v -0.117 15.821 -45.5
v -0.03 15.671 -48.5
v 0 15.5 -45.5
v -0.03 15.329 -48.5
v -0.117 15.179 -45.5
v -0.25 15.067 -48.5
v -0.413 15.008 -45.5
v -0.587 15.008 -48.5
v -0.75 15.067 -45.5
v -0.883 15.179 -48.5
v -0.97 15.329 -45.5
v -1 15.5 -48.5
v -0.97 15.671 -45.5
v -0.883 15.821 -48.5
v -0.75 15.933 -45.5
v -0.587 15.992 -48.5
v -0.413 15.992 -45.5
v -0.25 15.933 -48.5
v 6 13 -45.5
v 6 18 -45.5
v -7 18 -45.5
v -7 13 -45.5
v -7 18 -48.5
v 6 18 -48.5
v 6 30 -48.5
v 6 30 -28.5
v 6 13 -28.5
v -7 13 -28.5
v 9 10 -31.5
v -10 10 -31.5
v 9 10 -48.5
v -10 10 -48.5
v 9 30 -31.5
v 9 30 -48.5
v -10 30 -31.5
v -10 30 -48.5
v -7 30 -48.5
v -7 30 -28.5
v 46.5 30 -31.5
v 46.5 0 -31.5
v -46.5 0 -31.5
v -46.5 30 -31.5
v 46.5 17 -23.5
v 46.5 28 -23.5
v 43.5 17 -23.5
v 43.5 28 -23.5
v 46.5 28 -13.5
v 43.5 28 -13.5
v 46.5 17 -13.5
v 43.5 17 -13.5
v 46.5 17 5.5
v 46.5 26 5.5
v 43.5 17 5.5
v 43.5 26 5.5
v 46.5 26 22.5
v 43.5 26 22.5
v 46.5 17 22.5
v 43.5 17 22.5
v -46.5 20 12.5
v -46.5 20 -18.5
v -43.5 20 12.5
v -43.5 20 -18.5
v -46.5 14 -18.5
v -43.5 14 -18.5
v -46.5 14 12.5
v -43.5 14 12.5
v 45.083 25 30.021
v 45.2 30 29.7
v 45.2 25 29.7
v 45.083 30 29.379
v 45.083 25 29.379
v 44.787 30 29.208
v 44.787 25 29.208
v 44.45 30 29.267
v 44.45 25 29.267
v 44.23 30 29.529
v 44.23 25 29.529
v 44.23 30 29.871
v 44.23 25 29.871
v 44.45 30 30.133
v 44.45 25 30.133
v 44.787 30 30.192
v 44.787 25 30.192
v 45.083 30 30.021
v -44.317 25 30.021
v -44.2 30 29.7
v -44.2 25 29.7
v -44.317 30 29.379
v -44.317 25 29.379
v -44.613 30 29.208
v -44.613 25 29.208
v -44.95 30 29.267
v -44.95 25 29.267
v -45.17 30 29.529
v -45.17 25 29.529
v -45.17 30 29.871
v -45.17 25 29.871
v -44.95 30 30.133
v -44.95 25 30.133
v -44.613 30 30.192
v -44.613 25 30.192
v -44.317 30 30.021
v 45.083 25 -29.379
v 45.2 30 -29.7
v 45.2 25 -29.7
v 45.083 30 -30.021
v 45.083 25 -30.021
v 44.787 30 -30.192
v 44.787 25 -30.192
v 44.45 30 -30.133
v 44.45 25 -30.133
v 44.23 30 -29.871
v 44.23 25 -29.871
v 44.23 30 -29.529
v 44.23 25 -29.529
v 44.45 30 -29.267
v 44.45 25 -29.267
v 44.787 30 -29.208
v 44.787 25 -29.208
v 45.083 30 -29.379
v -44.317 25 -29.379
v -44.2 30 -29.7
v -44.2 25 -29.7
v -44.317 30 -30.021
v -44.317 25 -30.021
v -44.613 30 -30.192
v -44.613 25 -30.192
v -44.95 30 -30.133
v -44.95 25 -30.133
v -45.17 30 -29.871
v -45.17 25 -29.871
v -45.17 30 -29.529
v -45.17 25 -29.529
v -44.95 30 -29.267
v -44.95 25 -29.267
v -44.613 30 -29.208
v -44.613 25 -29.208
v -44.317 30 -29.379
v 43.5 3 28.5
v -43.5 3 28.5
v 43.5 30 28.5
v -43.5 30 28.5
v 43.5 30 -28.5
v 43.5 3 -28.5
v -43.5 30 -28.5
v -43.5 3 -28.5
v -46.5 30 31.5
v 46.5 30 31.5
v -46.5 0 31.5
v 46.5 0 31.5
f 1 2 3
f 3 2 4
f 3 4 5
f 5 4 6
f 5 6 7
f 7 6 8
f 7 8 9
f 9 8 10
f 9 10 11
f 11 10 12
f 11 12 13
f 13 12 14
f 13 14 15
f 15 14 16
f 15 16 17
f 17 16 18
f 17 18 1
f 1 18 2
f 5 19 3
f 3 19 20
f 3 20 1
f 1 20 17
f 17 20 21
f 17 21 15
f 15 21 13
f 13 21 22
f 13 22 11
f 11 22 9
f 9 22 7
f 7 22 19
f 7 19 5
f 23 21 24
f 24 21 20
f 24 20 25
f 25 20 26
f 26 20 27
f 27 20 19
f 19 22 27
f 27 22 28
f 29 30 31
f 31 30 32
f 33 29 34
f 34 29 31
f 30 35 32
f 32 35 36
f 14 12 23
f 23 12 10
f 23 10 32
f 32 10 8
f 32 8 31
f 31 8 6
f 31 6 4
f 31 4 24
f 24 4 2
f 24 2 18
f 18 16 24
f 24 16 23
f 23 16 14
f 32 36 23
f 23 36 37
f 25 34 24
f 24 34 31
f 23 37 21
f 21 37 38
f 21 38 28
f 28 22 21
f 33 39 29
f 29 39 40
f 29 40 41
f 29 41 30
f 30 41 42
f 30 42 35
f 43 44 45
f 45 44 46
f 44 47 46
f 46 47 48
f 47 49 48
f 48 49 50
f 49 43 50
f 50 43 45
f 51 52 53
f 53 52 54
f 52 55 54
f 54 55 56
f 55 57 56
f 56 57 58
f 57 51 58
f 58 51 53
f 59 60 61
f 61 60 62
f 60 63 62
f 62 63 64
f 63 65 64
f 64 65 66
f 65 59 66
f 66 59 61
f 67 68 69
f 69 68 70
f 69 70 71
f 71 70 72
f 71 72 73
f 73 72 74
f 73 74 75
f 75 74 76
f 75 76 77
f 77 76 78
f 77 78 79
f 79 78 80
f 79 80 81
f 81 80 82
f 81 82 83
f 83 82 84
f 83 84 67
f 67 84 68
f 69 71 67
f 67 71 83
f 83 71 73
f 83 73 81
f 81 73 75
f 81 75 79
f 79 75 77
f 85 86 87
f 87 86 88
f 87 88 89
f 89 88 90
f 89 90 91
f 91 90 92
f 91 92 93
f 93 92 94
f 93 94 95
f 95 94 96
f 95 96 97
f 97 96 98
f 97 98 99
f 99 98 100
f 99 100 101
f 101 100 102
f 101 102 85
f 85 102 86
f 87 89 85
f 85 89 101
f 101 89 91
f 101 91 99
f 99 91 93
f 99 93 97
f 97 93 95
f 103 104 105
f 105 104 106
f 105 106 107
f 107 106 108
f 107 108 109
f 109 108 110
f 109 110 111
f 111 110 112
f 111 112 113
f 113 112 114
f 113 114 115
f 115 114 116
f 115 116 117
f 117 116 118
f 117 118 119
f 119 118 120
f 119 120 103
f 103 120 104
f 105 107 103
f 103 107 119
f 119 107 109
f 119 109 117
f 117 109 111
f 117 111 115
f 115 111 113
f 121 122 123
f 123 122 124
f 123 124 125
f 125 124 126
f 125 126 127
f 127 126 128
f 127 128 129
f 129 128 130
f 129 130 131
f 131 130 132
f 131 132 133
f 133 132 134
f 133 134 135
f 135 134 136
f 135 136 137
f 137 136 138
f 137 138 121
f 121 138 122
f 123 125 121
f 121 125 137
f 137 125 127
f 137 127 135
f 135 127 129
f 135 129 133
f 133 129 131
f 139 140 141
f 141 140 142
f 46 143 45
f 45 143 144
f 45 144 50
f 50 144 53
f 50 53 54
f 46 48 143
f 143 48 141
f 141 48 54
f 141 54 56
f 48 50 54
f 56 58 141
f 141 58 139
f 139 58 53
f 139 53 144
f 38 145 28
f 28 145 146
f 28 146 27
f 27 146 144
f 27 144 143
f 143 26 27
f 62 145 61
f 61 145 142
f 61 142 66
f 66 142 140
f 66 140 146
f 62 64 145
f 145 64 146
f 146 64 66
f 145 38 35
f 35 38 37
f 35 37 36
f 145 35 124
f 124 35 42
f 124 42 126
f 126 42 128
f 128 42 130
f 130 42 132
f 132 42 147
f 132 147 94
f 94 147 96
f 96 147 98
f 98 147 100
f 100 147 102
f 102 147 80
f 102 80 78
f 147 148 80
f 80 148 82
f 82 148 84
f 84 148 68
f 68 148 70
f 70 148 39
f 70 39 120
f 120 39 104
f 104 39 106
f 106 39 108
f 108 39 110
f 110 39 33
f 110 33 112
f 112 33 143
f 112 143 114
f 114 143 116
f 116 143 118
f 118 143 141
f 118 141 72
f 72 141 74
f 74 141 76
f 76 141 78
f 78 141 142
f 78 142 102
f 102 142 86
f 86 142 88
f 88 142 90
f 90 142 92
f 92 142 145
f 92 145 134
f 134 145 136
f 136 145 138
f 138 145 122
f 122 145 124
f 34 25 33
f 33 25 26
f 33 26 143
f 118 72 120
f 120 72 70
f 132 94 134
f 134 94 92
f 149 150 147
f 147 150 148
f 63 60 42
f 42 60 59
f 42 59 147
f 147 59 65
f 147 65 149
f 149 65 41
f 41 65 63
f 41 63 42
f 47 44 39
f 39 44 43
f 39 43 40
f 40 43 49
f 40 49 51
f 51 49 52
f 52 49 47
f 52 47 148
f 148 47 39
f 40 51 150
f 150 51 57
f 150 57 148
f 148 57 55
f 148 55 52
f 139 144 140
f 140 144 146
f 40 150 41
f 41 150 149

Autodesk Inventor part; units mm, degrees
ref_plane "YZ Plane" through (0, 0, 0) normal (1, 0, 0) x (0, 1, 0)
ref_plane "XZ Plane" through (0, 0, 0) normal (0, 1, 0) x (-1, 0, 0)
ref_plane "XY Plane" through (0, 0, 0) normal (0, 0, 1) x (1, 0, 0)
sketch "Sketch1" plane through (0, 0, 0) normal (0, 1, 0) x (-1, 0, 0)
  line L0 (46.5, 31.5) -> (-46.5, 31.5)
  line L1 (-46.5, 31.5) -> (-46.5, -31.5)
  line L2 (-46.5, -31.5) -> (46.5, -31.5)
  line L3 (46.5, -31.5) -> (46.5, 31.5)
  line L4 (46.5, 31.5) -> (-46.5, -31.5) construction
  line L5 (-46.5, 31.5) -> (46.5, -31.5) construction
  point P0 (0, 0)
  dimension "d0" = 63
  dimension "d1" = 93
extrude "Extrusion1" add sketch "Sketch1" along normal blind 3
sketch "Sketch2" plane through (0, 3, 0) normal (0, 1, 0) x (1, 0, 0)
  line L0 (-43.5, -28.5) -> (43.5, -28.5)
  line L1 (43.5, -28.5) -> (43.5, 28.5)
  line L2 (43.5, 28.5) -> (-43.5, 28.5)
  line L3 (-43.5, 28.5) -> (-43.5, -28.5)
  line L4 (-43.5, -28.5) -> (43.5, 28.5) construction
  line L5 (43.5, -28.5) -> (-43.5, 28.5) construction
  line L6 (46.5, -31.5) -> (46.5, 31.5) projected
  line L7 (-46.5, -31.5) -> (46.5, -31.5)
  line L8 (46.5, -31.5) -> (46.5, 31.5)
  line L9 (46.5, 31.5) -> (-46.5, 31.5)
  line L10 (-46.5, 31.5) -> (-46.5, -31.5)
  line L11 (-46.5, -31.5) -> (46.5, 31.5) construction
  line L12 (46.5, -31.5) -> (-46.5, 31.5) construction
  point P0 (0, 0)
  point P1 (46.5, -31.5)
  dimension "d4" = 57
  dimension "d5" = 87
extrude "Extrusion2" add sketch "Sketch2" along normal blind 27
sketch "Sketch3" plane through (0, 30, 0) normal (0, 1, 0) x (1, 0, 0)
  circle A0 centre (-44.7, 29.7) radius 0.5
  line L0 (46.5, 31.5) -> (-46.5, 31.5) projected
  line L1 (-46.5, 31.5) -> (-46.5, -31.5) projected
  circle A1 centre (-44.7, -29.7) radius 0.5
  line L2 (-46.5, -31.5) -> (46.5, -31.5) projected
  circle A2 centre (44.7, -29.7) radius 0.5
  line L3 (46.5, -31.5) -> (46.5, 31.5) projected
  circle A3 centre (44.7, 29.7) radius 0.5
  point P0 (0, 0)
  dimension "d8" = 1.8
  dimension "d9" = 1.8
  dimension "d10" = 1
  dimension "d11" = 1.8
  dimension "d12" = 1.8
  dimension "d13" = 1
  dimension "d14" = 1.8
  dimension "d15" = 1.8
  dimension "d16" = 1
  dimension "d17" = 1.8
  dimension "d18" = 1.8
  dimension "d19" = 1
extrude "Extrusion3" cut sketch "Sketch3" against normal blind 5 contours A0 | A1 | A2 | A3
sketch "Sketch5" plane through (-46.5, 0, -31.5) normal (-1, 0, 0) x (0, 0, 1)
  line L0 (13, 14) -> (44, 14)
  line L1 (44, 14) -> (44, 20)
  line L2 (44, 20) -> (13, 20)
  line L3 (13, 20) -> (13, 14)
  line L4 (0, 0) -> (63, 0) projected
  line L5 (0, 0) -> (0, 30) projected
  point P0 (31.5, 0)
  dimension "d23" = 14
  dimension "d24" = 6
  dimension "d25" = 31
  dimension "d26" = 13
extrude "Extrusion4" cut sketch "Sketch5" against normal blind 3
sketch "Sketch6" plane through (46.5, 0, 31.5) normal (1, 0, 0) x (0, 0, -1)
  line L0 (45, 28) -> (55, 28)
  line L1 (55, 28) -> (55, 17)
  line L2 (55, 17) -> (45, 17)
  line L3 (45, 17) -> (45, 28)
  line L4 (0, 0) -> (63, 0) projected
  line L5 (63, 0) -> (63, 30) projected
  line L6 (9, 26) -> (26, 26)
  line L7 (26, 26) -> (26, 17)
  line L8 (26, 17) -> (9, 17)
  line L9 (9, 17) -> (9, 26)
  line L10 (0, 0) -> (0, 30) projected
  point P0 (31.5, 0)
  dimension "d30" = 17
  dimension "d31" = 11
  dimension "d32" = 10
  dimension "d33" = 8
  dimension "d34" = 9
  dimension "d35" = 17
  dimension "d36" = 17
  dimension "d37" = 9
extrude "Extrusion5" cut sketch "Sketch6" against normal blind 3
sketch "Sketch7" plane through (46.5, 0, -31.5) normal (0, 0, -1) x (-1, 0, 0)
  line L0 (40.5, 41) -> (53.5, 41)
  line L1 (53.5, 41) -> (53.5, 13)
  line L2 (53.5, 13) -> (40.5, 13)
  line L3 (40.5, 13) -> (40.5, 41)
  line L4 (0, 0) -> (93, 0) projected
  line L5 (93, 0) -> (93, 30) projected
  point P0 (46.5, 0)
  dimension "d40" = 13
  dimension "d41" = 28
  dimension "d42" = 13
  dimension "d43" = 39.5
extrude "Extrusion6" cut sketch "Sketch7" against normal blind 3
sketch "Sketch8" plane through (46.5, 0, -31.5) normal (0, 0, -1) x (-1, 0, 0)
  line L0 (40.5, 30) -> (3, 30) projected
  line L1 (37.5, 30) -> (56.5, 30)
  line L2 (56.5, 30) -> (56.5, 10)
  line L3 (56.5, 10) -> (37.5, 10)
  line L4 (37.5, 10) -> (37.5, 30)
  line L5 (40.5, 13) -> (40.5, 30) projected
  line L6 (53.5, 30) -> (53.5, 13) projected
  line L7 (53.5, 13) -> (40.5, 13) projected
  point P0 (46.5, 0)
  dimension "d46" = 3
  dimension "d47" = 3
  dimension "d48" = 3
extrude "Extrusion7" add sketch "Sketch8" along normal blind 17 contours L5 L7 L6 L1 L2 L3 L4 L0
sketch "Sketch9" plane through (-7, 13, -28.5) normal (0, 1, 0) x (1, 0, 0)
  line L0 (13, 20) -> (13, 0) projected
  line L1 (0, 0) -> (0, 20) projected
  line L2 (13, 17) -> (0, 17)
  line L3 (0, 17) -> (0, 20)
  line L4 (0, 20) -> (13, 20)
  line L5 (13, 20) -> (13, 17)
  point P0 (7, -28.5)
  point P1 (0, 17)
  dimension "d51" = 3
extrude "Extrusion8" add sketch "Sketch9" along normal blind 5
sketch "Sketch10" plane through (46.5, 0, -48.5) normal (0, 0, -1) x (-1, 0, 0)
  circle A0 centre (47, 15.5) radius 0.5
  line L0 (40.5, 13) -> (53.5, 13) projected
  line L1 (40.5, 18) -> (40.5, 13) projected
  point P0 (46.5, 0)
  dimension "d54" = 2.5
  dimension "d55" = 6.5
  dimension "d56" = 1
extrude "Extrusion9" cut sketch "Sketch10" against normal blind 5
properties part number "remoteswitchbox"
